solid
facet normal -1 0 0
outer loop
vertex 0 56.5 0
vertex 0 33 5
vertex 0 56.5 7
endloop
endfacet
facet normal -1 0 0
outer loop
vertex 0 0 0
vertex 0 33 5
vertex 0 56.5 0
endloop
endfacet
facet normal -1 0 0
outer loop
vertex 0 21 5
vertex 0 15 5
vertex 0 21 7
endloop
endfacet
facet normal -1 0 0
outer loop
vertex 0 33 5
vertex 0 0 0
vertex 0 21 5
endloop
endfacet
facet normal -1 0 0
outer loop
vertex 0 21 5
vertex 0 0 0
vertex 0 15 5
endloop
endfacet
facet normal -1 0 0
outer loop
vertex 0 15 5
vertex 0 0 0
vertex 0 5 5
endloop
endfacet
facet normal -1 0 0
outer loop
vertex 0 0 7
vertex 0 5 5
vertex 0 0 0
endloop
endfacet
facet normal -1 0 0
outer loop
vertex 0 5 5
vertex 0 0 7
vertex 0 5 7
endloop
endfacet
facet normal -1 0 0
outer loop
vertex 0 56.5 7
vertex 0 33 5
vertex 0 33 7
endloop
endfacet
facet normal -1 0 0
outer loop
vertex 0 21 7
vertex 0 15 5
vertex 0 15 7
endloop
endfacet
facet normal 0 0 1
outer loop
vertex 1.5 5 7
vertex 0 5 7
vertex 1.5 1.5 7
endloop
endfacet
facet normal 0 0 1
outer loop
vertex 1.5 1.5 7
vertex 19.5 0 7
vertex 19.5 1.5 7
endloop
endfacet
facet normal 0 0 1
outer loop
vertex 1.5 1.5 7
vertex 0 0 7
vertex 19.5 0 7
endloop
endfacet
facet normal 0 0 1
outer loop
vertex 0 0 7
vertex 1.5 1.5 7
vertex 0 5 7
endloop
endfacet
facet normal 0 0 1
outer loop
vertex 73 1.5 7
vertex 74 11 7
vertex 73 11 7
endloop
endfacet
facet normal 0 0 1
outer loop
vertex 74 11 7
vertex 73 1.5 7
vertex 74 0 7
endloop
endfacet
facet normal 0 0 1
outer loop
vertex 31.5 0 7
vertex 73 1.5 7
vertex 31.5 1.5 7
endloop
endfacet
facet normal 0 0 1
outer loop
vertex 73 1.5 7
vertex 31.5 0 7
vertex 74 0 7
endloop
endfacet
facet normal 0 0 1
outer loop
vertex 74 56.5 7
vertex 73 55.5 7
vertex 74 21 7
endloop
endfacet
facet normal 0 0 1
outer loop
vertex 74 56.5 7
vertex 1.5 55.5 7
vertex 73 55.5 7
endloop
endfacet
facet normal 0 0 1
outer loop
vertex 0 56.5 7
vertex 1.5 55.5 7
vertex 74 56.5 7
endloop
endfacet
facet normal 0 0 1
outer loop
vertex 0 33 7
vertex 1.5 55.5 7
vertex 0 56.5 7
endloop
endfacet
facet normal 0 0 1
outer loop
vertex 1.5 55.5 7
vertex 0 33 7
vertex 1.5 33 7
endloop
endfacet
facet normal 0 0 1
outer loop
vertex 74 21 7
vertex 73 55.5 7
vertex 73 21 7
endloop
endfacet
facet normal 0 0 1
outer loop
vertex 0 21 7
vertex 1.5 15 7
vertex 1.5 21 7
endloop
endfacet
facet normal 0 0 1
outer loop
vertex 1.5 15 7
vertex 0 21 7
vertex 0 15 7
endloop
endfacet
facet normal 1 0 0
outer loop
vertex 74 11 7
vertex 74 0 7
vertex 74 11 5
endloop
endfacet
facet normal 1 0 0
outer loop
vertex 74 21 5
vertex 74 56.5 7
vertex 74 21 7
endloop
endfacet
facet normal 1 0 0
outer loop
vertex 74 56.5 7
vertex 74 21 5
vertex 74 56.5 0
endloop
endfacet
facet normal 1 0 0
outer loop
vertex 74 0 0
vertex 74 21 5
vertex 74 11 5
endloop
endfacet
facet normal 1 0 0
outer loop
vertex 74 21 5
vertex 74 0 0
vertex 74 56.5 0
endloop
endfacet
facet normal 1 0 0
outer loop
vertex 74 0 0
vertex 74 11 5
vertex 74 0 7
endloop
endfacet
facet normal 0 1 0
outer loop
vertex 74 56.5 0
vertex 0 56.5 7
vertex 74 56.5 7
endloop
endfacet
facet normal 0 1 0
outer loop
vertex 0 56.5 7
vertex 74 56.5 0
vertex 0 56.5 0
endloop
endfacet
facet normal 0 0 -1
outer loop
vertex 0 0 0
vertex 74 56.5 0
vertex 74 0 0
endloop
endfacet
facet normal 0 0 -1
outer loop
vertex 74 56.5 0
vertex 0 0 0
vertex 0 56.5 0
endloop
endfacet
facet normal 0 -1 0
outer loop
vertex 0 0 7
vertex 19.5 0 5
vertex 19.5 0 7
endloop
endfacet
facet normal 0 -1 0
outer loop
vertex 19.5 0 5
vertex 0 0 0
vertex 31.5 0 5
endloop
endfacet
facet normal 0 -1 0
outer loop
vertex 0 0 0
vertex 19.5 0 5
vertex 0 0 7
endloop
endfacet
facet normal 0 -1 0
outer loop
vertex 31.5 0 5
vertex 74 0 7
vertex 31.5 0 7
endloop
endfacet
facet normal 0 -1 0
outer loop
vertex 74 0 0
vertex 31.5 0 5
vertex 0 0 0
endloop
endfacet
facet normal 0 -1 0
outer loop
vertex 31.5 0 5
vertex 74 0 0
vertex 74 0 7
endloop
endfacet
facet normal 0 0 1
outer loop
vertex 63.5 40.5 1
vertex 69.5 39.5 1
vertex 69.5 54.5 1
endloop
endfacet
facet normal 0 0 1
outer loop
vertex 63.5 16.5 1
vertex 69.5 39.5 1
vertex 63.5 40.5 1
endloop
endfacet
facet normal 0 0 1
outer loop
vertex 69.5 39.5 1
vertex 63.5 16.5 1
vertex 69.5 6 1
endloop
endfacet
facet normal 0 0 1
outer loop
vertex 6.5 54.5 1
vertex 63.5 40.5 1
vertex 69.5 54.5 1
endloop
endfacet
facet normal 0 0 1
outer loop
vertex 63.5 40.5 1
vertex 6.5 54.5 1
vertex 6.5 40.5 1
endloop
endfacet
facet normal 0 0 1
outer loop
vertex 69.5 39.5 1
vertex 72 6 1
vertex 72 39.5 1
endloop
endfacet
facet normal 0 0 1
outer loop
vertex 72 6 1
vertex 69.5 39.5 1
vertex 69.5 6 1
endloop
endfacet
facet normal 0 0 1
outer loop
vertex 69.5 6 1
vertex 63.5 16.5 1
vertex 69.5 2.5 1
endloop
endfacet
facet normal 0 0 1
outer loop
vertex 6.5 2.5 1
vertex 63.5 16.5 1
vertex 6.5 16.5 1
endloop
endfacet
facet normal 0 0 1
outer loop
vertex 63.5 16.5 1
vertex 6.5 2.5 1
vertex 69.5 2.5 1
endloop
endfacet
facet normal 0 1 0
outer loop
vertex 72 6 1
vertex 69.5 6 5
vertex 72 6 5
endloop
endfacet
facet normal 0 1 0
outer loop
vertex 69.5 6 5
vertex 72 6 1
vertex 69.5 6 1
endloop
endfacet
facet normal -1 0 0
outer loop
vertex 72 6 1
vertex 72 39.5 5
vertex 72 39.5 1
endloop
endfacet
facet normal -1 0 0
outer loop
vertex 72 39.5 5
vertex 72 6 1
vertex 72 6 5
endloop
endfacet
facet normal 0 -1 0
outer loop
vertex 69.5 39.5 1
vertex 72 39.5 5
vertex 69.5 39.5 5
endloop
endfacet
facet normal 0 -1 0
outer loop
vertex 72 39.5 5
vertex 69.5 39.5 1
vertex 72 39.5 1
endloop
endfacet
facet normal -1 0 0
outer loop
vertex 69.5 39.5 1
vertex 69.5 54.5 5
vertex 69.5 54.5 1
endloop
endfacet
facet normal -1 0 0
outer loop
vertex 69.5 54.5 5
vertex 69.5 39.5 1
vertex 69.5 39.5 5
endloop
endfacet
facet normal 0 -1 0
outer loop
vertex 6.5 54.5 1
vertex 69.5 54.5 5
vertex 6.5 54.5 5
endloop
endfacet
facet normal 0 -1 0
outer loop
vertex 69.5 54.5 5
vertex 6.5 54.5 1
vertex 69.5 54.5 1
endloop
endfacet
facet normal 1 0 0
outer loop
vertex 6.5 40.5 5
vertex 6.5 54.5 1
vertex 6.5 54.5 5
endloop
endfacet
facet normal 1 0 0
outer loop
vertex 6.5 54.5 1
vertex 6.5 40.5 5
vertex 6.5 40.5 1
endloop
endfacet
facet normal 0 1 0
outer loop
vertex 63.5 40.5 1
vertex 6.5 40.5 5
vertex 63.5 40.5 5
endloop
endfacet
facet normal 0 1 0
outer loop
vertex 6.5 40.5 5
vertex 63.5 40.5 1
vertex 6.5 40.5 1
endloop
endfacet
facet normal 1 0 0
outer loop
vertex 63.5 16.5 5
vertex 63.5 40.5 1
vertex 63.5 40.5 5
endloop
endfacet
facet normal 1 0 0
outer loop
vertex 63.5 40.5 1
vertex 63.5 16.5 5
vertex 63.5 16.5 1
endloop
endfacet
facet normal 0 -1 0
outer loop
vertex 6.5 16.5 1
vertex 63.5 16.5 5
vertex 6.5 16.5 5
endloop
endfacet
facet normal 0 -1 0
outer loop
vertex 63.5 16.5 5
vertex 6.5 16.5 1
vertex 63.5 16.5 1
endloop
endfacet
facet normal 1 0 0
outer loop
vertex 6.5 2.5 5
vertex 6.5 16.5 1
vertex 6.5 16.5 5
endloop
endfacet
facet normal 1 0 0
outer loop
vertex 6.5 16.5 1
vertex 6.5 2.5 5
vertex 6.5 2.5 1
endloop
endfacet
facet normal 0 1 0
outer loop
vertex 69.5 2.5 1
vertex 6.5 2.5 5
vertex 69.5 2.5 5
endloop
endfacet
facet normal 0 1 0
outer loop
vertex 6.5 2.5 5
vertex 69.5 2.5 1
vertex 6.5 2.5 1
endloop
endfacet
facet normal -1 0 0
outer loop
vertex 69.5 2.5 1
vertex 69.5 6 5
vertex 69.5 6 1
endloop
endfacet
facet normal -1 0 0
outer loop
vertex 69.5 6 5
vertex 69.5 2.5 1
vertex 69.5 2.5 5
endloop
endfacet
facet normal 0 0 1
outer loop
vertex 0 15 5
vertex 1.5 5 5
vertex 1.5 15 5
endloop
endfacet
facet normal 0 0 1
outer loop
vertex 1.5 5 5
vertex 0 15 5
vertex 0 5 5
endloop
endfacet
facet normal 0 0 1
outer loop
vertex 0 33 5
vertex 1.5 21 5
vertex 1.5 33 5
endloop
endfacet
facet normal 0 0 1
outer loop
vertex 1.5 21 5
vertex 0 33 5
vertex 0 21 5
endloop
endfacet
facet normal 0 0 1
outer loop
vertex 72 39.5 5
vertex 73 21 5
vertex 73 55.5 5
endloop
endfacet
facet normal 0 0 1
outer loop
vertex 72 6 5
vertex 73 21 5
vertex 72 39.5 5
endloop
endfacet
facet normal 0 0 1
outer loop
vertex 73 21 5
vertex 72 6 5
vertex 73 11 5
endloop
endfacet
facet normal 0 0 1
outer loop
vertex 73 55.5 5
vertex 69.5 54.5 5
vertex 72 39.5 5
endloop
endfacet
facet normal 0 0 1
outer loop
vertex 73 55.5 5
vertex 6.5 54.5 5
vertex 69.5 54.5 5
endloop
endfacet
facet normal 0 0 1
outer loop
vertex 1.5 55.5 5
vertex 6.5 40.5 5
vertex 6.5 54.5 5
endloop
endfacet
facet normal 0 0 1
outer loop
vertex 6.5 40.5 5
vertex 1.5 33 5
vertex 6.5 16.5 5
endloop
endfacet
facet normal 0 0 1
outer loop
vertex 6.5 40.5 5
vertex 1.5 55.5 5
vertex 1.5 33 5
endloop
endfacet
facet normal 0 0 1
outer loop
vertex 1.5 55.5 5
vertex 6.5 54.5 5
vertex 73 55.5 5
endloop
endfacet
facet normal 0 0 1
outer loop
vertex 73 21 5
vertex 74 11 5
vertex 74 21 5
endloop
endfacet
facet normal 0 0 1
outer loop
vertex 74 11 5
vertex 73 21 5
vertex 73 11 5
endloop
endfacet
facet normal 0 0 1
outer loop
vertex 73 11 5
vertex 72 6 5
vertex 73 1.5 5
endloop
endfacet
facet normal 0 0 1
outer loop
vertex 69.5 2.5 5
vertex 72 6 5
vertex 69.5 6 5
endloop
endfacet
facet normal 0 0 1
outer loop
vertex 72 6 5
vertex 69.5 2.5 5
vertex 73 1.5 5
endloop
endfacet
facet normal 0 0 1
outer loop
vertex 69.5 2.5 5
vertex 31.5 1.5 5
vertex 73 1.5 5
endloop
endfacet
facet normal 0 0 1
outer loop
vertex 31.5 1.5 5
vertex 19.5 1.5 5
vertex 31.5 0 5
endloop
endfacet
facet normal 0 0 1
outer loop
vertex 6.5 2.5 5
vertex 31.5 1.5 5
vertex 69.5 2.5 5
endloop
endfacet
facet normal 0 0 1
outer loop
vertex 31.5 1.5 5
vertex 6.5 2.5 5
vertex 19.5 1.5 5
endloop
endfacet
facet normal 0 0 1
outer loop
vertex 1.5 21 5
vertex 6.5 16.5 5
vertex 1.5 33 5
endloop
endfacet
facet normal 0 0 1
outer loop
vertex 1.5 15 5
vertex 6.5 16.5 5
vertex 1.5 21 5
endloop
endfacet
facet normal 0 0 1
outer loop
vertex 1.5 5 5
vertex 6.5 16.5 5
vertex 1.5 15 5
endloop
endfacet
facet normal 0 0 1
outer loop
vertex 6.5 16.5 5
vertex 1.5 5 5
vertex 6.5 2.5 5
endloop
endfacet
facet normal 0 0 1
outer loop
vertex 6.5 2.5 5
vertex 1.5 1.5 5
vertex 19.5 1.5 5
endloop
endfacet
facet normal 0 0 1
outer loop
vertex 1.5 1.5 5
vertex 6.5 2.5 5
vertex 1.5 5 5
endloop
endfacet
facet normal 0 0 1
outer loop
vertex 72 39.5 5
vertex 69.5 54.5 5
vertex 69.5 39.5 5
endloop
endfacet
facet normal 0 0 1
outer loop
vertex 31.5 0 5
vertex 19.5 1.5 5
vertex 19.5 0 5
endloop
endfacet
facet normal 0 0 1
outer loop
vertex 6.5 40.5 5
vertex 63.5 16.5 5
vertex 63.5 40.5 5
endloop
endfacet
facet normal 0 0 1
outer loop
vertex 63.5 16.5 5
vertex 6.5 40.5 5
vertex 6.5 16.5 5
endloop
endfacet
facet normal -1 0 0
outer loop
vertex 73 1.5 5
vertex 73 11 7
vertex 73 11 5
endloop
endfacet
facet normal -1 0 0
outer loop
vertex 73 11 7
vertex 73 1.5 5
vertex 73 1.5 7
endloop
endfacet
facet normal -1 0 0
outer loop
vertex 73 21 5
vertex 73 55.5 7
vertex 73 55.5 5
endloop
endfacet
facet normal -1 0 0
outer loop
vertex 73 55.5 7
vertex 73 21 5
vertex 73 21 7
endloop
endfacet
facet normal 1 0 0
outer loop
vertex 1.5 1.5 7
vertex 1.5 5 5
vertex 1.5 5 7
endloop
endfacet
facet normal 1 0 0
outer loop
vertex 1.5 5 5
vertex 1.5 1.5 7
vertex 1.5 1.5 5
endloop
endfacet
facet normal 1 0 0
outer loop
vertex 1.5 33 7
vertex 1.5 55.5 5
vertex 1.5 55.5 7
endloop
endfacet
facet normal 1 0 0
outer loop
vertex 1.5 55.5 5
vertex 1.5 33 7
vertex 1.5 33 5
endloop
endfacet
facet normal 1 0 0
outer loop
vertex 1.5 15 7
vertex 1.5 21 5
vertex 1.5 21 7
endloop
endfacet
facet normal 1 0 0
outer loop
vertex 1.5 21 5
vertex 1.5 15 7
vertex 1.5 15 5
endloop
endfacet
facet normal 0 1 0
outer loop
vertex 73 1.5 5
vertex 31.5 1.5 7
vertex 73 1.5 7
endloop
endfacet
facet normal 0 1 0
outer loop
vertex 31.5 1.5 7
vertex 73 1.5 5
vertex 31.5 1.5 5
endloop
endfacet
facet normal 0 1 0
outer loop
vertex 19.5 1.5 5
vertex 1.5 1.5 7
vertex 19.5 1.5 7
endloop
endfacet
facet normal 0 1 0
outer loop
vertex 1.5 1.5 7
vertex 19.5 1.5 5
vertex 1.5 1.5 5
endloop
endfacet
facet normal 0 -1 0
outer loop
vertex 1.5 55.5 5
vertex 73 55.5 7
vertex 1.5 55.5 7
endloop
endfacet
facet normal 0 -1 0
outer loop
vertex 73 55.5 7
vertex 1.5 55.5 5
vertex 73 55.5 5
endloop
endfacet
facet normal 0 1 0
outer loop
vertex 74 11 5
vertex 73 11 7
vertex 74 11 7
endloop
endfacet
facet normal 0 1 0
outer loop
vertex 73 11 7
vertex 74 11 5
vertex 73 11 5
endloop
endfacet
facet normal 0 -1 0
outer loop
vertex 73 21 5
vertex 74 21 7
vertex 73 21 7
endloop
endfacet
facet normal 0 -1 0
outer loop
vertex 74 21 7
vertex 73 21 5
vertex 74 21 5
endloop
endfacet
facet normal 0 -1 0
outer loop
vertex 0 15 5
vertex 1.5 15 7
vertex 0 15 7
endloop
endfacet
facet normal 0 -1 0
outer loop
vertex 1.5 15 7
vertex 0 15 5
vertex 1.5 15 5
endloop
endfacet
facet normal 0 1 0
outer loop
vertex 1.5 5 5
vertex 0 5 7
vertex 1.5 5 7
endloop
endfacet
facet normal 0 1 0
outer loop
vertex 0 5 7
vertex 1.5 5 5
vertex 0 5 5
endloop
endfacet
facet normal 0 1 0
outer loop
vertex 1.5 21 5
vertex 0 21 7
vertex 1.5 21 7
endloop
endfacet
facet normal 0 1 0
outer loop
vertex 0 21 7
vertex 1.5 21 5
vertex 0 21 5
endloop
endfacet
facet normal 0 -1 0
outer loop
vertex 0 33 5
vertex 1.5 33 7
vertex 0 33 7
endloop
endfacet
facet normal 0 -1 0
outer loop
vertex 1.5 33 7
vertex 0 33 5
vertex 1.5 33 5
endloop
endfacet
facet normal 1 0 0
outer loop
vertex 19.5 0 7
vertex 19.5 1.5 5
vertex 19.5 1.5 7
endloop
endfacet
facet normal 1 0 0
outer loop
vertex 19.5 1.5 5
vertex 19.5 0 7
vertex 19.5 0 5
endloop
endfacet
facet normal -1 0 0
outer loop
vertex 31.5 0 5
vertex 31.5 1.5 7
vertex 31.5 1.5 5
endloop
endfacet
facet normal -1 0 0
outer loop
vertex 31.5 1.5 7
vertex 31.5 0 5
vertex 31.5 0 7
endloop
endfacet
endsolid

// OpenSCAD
$fn = 90;

module zum() {
        square( [ 71.5, 54.0 ] );
}

module zum_clearance() {

    polygon( [
        [  5.0,  1.0 ],
        [ 68.0,  1.0 ],
        [ 68.0,  4.5 ],
        [ 70.5,  4.5 ],
        [ 70.5, 38.0 ],
        [ 68.0, 38.0 ],
        [ 68.0, 53.0 ],
        [  5.0, 53.0 ],
        [  5.0, 39.0 ],
        [ 62.0, 39.0 ],
        [ 62.0, 15.0 ],
        [  5.0, 15.0 ]
        
    ] );
    
/*
    offset( r = -1 ) offset( r = 1 ) {
        polygon( [
            [ 19, 53.5 - 1 ],
            [ 19, 53.5 - 4  ],
            [ 29, 53.5 - 4 ],
            [ 29, 53.5 - 13 ],
            [ 67, 53.5 - 13 ],
            [ 67, 53.5 - 1 ]
        ] );
        polygon( [ 
            [ 65, 32 ],
            [ 65, 24 ],
            [ 70, 24 ],
            [ 70, 32 ]
        ] );
        polygon( [ 
            [ 64, 19.5 ],
            [ 64, 10 ],
            [ 70, 10 ],
            [ 70, 19.5 ]
        ] );
        polygon( [
            [ 29.5, 1 ],
            [ 29.5, 4  ],
            [ 48, 4 ],
            [ 48, 13 ],
            [ 63, 13 ],
            [ 63, 4 ],
            [ 67, 4 ],            
            [ 67, 1 ]
        ] );
        polygon( [ 
            [ 20, 6 ],
            [ 20, 4 ],
            [ 27, 4 ],
            [ 27, 6 ]
        ] );
        
        hull() {
            translate( [ 11,  3.5 ] ) circle( d = 6 );
            translate( [ 14.5, 7 ] ) circle( d= 6 );
            translate( [ 9, 7 ] ) circle( d = 6 );
        }
    }
*/
}

module zum_base() {
    difference() { 
        cube( [ 66 + 5 + 3, 53.5 + 3, 7 ] );
        translate( [ 1.5, 1.5, 1 ] ) linear_extrude( height = 10 ) zum_clearance();
        translate( [ 1.5, 1.5, 5 ] ) linear_extrude( height = 10 ) zum();
        translate( [ 65 + 1.5, 14.5 - 5 + 1.5, 5 ] ) cube( [ 10, 10, 10 ] ); 
        translate( [ -1, 5, 5 ] ) cube( [ 20, 10, 15 ] ); 
        translate( [ -1, 1.5 + 25.5 - 6, 5 ] ) cube( [ 12, 12, 6 ] );
        translate( [ 1.5 + 24 - 6, -1 , 5 ] ) cube( [ 12, 12, 6 ] );
    }
}

zum_base();

//difference() {
//    translate( [ 0, 0, -4 ] ) zum_base();
//    translate( [ -10, -10, -10 ] ) cube( [ 100, 100, 10 ] );
//}
